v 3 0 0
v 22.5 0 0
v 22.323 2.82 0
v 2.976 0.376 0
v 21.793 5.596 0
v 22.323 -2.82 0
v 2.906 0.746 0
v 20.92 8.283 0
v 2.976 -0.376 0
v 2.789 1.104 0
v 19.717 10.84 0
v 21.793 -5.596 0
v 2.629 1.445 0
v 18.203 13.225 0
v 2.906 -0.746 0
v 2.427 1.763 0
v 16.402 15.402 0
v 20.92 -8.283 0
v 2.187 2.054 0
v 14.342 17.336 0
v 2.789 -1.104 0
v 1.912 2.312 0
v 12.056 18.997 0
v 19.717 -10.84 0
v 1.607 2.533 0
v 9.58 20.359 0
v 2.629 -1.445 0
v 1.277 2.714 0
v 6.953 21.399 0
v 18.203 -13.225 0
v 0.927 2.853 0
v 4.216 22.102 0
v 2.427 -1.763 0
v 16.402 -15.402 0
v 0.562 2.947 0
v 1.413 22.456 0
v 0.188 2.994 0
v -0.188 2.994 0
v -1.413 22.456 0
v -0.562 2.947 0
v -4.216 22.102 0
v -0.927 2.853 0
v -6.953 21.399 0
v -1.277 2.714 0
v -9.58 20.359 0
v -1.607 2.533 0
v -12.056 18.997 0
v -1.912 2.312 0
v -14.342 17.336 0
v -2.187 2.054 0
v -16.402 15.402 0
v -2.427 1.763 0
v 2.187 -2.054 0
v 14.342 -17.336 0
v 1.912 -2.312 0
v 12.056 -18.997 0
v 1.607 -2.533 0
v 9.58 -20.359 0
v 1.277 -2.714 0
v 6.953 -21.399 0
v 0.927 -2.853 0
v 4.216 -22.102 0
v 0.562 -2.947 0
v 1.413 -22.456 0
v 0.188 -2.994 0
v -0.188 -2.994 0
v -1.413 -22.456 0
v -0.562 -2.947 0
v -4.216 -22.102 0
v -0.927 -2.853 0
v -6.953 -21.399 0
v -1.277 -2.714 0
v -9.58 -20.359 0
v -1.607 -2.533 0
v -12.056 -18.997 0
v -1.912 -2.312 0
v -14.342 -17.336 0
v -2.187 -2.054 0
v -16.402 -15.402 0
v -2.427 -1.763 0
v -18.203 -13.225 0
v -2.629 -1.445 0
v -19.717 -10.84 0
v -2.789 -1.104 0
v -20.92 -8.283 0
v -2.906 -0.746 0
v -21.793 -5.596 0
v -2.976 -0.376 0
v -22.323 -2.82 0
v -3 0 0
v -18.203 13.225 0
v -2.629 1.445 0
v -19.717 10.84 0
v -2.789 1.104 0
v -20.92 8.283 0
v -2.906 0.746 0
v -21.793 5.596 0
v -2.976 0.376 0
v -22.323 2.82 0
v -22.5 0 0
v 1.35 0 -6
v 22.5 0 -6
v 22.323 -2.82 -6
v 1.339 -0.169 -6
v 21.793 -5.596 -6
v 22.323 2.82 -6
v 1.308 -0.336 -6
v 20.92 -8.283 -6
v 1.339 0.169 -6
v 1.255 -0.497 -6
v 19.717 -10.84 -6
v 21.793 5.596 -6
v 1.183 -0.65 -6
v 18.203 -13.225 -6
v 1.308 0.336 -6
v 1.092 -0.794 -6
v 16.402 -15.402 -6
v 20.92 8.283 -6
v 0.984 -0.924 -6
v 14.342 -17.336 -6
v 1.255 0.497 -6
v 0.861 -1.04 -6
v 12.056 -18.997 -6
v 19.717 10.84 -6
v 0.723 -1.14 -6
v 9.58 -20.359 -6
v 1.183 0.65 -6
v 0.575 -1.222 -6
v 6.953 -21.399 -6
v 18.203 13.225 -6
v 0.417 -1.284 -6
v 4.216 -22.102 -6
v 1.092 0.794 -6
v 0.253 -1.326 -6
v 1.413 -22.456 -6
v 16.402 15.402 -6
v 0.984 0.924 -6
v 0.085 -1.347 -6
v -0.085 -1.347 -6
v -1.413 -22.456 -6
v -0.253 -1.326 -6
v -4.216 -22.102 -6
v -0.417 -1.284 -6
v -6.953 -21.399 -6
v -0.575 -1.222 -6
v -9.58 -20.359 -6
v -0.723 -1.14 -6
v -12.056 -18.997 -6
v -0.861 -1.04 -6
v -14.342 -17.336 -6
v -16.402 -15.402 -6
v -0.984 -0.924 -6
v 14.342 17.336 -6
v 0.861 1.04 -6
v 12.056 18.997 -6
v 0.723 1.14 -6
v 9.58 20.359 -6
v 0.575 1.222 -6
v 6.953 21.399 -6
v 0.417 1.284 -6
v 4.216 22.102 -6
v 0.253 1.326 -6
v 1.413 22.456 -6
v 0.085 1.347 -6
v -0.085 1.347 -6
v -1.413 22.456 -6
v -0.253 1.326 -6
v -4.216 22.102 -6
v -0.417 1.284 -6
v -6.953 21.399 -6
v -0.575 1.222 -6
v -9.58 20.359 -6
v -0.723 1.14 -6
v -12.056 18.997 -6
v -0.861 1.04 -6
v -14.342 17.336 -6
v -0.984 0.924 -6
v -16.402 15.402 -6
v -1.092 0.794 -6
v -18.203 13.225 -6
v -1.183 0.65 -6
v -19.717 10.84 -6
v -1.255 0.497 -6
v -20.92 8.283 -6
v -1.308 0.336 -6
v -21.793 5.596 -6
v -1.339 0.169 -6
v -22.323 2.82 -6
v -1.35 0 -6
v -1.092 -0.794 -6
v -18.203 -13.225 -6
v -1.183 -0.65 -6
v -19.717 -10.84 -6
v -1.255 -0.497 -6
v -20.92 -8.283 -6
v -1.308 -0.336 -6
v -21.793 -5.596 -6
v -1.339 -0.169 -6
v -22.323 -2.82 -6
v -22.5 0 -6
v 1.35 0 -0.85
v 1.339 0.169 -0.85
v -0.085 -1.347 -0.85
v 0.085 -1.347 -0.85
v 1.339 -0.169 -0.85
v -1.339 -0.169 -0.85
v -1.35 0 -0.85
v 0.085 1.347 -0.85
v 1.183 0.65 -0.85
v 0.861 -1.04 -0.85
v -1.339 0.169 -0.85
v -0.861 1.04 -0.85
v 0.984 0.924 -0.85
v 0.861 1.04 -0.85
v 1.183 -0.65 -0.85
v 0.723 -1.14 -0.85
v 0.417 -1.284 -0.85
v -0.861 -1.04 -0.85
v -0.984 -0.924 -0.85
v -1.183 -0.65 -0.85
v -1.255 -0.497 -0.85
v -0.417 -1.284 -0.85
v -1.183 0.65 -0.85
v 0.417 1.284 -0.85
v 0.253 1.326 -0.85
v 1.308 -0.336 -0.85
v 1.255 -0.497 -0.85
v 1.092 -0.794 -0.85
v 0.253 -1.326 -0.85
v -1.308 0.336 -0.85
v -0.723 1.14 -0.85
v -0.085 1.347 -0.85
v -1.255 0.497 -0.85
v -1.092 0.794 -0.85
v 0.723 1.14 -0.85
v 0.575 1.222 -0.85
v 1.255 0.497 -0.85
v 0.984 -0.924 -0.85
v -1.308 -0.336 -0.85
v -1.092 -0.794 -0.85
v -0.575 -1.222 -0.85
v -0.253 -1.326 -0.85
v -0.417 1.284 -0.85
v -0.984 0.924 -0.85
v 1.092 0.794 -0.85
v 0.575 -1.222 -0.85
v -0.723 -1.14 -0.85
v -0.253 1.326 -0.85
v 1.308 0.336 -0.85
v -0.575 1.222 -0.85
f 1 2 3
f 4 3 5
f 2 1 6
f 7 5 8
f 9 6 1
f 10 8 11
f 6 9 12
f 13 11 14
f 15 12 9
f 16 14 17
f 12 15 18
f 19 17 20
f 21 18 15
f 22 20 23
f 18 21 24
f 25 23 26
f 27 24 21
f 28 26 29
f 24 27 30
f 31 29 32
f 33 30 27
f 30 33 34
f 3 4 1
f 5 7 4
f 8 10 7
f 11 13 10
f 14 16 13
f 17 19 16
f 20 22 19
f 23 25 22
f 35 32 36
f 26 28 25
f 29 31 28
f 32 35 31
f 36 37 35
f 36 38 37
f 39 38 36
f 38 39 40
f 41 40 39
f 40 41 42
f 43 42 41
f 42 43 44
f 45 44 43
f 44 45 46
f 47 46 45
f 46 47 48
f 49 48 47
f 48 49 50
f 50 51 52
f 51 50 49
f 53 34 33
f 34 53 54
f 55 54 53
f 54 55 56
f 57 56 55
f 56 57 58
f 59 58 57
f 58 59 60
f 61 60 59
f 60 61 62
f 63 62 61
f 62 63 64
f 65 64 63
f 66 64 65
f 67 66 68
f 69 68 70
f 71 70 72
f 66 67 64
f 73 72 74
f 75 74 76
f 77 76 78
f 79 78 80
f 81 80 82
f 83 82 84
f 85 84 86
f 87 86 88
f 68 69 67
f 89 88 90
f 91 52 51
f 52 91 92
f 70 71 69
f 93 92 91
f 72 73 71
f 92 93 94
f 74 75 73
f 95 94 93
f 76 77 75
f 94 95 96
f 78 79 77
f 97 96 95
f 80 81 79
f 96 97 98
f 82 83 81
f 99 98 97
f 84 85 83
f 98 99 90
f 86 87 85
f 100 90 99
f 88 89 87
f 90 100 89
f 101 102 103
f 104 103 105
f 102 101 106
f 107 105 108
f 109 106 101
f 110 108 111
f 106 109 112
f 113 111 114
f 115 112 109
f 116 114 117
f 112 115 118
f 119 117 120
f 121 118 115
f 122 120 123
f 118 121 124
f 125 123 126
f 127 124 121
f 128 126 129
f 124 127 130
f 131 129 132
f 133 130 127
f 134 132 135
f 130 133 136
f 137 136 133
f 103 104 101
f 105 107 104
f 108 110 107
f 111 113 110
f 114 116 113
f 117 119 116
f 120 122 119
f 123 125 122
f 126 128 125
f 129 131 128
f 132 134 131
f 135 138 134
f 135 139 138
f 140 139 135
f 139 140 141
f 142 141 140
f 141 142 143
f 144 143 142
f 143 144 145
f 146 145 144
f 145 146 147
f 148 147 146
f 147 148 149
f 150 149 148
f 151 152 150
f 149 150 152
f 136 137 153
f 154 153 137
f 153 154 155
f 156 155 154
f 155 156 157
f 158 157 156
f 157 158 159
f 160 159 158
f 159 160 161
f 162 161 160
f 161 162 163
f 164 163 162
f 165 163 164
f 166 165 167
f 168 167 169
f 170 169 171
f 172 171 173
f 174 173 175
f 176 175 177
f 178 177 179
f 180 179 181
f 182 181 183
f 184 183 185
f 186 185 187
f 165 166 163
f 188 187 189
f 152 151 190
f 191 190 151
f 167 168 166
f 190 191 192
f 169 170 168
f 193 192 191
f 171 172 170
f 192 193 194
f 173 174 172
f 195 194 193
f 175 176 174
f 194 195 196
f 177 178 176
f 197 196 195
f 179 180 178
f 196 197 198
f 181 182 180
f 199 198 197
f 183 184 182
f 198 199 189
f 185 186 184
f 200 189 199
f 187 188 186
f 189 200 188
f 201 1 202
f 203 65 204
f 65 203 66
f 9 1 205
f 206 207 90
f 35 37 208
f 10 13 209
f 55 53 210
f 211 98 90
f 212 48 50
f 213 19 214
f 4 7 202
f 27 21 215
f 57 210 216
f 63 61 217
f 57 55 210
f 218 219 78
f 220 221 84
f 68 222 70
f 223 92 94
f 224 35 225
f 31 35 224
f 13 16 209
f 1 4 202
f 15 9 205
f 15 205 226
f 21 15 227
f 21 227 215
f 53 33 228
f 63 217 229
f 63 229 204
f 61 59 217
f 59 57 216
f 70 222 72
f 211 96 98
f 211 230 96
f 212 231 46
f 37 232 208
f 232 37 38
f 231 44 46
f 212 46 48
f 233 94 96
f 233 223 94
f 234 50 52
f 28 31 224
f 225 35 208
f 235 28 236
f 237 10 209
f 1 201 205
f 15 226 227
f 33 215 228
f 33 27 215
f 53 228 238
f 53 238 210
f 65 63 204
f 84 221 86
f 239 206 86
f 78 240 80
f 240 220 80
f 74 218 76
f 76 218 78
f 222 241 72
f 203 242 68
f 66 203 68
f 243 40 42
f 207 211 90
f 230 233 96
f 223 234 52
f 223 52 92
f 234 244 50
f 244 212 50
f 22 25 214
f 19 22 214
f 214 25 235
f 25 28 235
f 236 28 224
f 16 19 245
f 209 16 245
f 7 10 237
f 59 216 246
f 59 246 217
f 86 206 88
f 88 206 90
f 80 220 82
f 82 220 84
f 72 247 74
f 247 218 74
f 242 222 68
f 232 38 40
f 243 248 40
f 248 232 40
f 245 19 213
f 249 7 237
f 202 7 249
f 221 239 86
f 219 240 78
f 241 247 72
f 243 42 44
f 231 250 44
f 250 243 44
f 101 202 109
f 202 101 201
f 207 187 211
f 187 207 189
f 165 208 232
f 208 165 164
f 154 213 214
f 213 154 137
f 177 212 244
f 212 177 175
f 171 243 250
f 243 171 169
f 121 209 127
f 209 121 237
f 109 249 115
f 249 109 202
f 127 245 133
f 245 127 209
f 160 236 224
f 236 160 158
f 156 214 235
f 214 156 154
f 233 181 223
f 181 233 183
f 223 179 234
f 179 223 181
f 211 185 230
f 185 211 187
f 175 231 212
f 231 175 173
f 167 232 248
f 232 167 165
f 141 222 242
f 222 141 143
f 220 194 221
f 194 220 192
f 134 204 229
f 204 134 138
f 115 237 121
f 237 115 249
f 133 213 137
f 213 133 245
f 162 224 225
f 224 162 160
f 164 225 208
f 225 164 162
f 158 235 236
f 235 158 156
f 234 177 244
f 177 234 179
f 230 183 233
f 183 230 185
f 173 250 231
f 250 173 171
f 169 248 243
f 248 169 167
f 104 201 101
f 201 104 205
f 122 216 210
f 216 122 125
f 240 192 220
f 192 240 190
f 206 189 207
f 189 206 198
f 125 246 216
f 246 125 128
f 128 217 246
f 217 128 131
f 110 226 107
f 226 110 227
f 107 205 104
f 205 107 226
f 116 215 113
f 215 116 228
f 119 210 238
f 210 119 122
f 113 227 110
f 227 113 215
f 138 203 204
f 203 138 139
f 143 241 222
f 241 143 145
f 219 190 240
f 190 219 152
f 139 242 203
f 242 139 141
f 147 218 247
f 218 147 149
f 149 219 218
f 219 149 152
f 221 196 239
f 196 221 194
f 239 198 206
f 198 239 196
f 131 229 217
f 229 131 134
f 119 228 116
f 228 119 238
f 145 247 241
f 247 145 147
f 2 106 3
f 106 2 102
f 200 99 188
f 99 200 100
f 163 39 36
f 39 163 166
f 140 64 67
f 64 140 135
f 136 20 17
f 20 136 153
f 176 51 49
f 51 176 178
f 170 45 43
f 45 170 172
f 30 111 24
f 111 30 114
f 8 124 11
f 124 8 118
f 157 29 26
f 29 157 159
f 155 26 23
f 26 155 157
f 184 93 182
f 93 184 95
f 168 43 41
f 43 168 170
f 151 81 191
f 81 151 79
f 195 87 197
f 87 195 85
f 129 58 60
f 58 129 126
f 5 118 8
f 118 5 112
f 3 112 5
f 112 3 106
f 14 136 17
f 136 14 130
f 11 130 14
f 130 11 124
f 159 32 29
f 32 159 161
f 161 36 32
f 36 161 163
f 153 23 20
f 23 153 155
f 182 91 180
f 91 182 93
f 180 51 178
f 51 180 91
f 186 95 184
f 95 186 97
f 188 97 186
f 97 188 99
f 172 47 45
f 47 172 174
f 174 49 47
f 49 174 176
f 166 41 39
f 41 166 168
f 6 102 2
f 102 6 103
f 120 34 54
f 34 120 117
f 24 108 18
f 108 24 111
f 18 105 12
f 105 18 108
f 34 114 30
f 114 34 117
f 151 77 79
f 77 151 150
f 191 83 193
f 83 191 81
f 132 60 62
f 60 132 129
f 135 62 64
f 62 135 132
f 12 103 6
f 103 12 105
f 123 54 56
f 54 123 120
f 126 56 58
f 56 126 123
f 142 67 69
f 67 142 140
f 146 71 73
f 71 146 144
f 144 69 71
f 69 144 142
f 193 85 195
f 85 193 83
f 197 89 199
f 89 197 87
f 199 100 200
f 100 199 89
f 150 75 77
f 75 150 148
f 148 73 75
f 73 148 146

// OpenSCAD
$fn = 50;


difference() {
	union() {
		translate(v = [0, 0, -6.0000000000]) {
			cylinder(h = 6, r = 22.5000000000);
		}
	}
	union() {
		translate(v = [0, 0, 0]) {
			rotate(a = [0, 0, 0]) {
				difference() {
					union() {
						translate(v = [0, 0, -6.0000000000]) {
							cylinder(h = 6, r = 1.0000000000);
						}
						translate(v = [0, 0, -0.8500000000]) {
							cylinder(h = 0.8500000000, r1 = 1.3500000000, r2 = 3.0000000000);
						}
						translate(v = [0, 0, -6.0000000000]) {
							cylinder(h = 6, r = 1.3500000000);
						}
						translate(v = [0, 0, -6.0000000000]) {
							cylinder(h = 6, r = 1.0000000000);
						}
					}
					union();
				}
			}
		}
	}
}
